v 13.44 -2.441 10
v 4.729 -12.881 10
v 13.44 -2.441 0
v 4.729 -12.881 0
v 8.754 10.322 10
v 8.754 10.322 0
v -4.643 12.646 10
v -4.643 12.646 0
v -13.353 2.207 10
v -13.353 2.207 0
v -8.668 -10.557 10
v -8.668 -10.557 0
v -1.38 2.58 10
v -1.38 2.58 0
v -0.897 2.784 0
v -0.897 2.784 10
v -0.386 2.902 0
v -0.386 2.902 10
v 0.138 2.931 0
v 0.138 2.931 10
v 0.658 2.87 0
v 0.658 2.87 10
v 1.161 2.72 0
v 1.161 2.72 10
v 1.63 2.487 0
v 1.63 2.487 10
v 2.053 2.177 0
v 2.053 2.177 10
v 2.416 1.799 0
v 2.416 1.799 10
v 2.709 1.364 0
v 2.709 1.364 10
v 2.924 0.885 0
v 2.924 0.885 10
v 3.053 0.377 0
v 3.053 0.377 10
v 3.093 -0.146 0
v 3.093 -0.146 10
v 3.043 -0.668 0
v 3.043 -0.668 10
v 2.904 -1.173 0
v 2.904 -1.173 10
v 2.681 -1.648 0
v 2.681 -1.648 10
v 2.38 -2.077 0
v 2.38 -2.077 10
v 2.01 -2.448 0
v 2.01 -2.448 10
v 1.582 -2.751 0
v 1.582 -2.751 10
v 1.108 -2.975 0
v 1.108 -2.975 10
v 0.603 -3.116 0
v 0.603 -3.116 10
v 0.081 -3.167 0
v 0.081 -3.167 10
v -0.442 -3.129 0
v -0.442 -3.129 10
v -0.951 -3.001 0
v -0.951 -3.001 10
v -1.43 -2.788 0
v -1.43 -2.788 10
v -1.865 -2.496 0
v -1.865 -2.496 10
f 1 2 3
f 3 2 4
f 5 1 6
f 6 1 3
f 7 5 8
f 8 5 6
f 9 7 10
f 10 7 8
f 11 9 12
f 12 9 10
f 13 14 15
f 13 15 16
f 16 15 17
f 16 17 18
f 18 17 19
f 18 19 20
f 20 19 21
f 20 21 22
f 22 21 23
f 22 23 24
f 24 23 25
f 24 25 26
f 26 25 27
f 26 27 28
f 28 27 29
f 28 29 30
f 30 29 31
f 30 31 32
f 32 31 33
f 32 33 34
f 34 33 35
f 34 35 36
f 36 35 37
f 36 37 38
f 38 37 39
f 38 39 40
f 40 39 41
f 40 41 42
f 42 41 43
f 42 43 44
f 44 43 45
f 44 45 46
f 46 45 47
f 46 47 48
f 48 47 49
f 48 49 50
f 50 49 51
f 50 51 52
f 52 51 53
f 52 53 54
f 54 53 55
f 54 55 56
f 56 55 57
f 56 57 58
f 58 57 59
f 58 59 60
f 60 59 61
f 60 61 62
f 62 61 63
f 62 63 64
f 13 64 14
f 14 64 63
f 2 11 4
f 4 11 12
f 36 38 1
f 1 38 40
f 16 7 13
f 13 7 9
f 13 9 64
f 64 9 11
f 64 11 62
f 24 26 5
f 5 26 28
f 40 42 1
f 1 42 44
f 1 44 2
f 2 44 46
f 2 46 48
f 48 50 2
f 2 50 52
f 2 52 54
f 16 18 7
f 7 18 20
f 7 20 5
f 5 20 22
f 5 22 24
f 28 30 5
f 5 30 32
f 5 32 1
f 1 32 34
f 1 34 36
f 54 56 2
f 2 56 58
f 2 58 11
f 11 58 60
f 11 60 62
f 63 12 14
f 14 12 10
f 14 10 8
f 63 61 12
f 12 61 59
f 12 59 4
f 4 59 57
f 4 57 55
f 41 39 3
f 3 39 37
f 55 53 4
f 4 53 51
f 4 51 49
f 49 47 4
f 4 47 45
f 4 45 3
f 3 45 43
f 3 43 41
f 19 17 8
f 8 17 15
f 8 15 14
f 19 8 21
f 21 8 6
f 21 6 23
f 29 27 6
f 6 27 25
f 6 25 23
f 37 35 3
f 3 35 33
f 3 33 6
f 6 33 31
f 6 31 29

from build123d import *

# Parameters (mm, degrees)
BOSS_EXTRUDE2_DEPTH = 10


with BuildPart() as part:
    # Sketch1 → Boss-Extrude2 (new body)
    with BuildSketch(Plane.XY):
        Polygon((13.439595942, -2.441270434), (8.753924566, 10.322427453), (-4.642597738, 12.646365952), (-13.353448667, 2.206606563), (-8.667777292, -10.557091324), (4.728745013, -12.881029823), align=None)
        with BuildLine():
            Line((-1.865402523, -2.496453358), (-1.379890953, 2.580384094))
            ThreePointArc((-1.379890953, 2.580384094), (3.079221525, -0.407686894), (-1.865402523, -2.496453358))
        make_face(mode=Mode.SUBTRACT)
    extrude(amount=BOSS_EXTRUDE2_DEPTH)


solid = part.part
